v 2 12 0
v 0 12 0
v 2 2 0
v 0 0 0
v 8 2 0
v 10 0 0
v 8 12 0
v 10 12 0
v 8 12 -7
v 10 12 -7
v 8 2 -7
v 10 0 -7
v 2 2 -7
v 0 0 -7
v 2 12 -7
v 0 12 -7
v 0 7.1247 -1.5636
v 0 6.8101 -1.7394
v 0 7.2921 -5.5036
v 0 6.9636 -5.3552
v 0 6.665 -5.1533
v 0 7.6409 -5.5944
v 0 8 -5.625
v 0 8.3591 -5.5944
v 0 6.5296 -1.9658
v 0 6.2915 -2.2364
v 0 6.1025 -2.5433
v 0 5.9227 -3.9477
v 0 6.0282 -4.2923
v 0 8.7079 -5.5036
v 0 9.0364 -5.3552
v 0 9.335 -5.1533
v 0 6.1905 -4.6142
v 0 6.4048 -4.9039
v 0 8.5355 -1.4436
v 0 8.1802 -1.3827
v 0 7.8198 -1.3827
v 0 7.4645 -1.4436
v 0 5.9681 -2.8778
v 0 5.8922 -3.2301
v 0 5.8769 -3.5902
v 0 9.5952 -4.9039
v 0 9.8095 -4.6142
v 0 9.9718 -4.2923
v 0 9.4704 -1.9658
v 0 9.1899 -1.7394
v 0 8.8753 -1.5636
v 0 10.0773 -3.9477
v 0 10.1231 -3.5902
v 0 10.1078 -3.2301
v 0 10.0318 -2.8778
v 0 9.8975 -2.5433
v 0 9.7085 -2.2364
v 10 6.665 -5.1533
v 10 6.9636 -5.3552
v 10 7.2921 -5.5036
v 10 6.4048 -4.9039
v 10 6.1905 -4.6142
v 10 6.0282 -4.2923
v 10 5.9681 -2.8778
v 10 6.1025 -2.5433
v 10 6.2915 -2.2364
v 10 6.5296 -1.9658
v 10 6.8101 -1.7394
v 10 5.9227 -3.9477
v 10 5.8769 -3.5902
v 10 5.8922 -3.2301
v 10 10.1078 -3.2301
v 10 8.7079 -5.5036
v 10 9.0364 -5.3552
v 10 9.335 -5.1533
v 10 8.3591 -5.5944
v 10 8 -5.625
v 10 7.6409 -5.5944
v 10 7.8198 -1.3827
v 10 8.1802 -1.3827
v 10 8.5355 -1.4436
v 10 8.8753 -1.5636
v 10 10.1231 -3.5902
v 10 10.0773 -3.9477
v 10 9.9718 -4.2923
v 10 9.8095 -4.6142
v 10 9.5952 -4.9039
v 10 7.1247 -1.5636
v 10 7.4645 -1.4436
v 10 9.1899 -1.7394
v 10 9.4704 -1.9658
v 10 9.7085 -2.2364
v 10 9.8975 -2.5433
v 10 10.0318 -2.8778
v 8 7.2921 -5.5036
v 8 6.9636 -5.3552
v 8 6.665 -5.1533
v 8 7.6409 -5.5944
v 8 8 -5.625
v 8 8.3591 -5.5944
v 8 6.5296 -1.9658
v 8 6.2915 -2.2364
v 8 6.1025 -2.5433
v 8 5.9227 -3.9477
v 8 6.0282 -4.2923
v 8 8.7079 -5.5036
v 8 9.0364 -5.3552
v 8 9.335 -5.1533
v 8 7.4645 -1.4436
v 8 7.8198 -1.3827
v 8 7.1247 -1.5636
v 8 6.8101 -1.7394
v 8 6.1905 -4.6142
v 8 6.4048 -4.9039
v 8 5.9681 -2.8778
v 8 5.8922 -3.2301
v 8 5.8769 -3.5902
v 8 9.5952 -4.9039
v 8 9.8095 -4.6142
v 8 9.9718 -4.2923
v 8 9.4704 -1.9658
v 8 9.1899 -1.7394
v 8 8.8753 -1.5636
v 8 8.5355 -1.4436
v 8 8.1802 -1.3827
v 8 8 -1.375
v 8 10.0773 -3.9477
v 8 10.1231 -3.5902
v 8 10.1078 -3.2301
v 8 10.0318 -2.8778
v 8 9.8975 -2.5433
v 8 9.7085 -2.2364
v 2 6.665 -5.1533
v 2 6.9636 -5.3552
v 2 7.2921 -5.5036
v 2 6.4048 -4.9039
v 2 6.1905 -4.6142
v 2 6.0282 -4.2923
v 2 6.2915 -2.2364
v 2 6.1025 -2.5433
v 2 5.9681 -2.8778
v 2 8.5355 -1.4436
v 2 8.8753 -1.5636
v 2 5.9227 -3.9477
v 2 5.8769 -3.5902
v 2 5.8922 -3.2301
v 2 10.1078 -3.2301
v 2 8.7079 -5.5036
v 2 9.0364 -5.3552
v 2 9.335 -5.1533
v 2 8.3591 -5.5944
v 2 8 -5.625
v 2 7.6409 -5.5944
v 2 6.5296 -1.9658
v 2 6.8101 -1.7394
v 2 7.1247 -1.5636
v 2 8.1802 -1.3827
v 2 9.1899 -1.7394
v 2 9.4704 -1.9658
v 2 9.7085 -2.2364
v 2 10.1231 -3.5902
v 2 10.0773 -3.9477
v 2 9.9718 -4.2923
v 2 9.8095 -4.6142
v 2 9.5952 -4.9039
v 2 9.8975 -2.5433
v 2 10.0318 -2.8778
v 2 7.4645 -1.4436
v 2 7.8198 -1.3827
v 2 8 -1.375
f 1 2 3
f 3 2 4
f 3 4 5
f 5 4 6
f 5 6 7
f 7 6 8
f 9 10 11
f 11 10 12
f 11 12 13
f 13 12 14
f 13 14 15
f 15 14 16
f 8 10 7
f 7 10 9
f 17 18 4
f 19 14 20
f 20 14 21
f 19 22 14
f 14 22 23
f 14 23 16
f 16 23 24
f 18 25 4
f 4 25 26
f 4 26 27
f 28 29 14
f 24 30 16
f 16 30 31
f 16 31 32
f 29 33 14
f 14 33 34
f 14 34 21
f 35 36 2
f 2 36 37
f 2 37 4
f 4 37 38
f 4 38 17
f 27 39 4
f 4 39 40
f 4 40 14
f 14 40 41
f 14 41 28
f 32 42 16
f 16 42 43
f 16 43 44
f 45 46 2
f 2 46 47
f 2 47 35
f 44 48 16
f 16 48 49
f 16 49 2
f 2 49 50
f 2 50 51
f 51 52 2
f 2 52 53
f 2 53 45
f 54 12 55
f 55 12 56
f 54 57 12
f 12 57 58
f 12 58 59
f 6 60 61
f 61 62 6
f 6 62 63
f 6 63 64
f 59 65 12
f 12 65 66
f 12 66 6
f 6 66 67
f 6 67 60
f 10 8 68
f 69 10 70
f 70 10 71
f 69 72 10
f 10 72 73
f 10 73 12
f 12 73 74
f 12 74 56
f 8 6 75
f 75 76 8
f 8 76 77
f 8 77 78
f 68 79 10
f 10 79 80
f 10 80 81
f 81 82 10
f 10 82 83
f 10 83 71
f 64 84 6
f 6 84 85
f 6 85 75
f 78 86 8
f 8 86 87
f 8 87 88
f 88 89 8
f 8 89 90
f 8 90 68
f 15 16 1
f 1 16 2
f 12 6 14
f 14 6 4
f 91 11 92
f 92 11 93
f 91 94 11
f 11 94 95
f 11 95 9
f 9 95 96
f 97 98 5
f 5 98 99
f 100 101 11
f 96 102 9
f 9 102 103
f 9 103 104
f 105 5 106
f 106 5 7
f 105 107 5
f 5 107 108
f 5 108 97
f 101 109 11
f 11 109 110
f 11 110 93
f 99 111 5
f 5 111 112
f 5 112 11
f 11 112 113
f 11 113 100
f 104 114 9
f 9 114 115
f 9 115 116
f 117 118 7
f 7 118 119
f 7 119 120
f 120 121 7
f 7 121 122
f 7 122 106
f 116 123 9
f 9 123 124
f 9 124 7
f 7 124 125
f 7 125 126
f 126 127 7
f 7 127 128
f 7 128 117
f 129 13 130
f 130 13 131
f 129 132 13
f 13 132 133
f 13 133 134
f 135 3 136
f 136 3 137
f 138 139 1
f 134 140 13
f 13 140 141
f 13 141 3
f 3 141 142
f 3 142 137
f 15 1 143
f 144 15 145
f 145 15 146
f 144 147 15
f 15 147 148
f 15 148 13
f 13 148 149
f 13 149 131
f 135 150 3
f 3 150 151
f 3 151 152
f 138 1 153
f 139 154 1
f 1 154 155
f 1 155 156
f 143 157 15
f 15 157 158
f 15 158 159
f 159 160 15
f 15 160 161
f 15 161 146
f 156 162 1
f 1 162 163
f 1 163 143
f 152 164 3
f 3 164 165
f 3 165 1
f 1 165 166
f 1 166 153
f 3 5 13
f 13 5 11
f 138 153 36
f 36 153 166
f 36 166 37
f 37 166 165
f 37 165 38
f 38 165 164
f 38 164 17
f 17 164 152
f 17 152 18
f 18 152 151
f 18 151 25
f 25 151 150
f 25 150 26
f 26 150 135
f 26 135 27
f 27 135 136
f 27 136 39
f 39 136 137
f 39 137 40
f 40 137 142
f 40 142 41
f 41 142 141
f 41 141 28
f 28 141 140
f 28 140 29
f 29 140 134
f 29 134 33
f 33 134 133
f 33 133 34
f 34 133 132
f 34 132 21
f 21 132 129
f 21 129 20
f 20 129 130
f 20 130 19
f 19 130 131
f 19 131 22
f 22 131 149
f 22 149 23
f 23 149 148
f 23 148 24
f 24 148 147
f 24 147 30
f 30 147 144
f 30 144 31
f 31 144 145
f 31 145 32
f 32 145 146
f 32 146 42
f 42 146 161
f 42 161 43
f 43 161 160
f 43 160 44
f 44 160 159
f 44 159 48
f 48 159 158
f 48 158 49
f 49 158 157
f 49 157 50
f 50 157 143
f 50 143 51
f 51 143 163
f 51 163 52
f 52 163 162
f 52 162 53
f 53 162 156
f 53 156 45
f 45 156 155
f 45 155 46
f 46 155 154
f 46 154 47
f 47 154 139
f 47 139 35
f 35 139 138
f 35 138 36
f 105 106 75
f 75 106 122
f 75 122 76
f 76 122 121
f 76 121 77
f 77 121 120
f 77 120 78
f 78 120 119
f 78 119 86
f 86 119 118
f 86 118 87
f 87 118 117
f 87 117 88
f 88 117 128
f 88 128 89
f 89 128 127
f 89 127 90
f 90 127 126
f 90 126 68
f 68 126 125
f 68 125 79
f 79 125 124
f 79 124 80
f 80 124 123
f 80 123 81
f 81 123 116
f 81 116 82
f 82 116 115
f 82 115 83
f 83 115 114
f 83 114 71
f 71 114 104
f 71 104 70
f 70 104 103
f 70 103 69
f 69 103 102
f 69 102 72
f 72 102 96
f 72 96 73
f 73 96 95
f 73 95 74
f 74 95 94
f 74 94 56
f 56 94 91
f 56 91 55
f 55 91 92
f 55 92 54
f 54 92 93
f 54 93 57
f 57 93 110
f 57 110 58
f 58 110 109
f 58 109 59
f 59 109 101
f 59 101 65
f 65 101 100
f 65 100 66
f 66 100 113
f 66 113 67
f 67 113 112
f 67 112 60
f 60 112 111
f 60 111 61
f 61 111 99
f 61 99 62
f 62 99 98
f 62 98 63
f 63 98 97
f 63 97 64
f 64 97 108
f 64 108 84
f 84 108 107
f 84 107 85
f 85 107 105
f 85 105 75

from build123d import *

# Parameters (mm, degrees)
SKETCH1_W           = 10
SKETCH1_H           = 7
BOSS_EXTRUDE1_DEPTH = 12
SKETCH2_W           = 3
SKETCH2_H           = 7
CUT_EXTRUDE1_DEPTH  = 10
SKETCH3_R           = 2.125
CUT_EXTRUDE2_DEPTH  = 11


with BuildPart() as part:
    # Sketch1 → Boss-Extrude1 (new body)
    with BuildSketch(Plane(origin=(0, 0, 0), x_dir=(1, 0, 0), z_dir=(0, 1, 0))):
        with Locations((5, 3.5)):
            Rectangle(SKETCH1_W, SKETCH1_H)
    extrude(amount=BOSS_EXTRUDE1_DEPTH)

    # Sketch2 → Cut-Extrude1 (cut)
    with BuildSketch(Plane(origin=(0, 12, 0), x_dir=(1, 0, 0), z_dir=(0, 1, 0))):
        with Locations((3.5, 3.5)):
            Rectangle(SKETCH2_W, SKETCH2_H)
        with Locations((6.5, 3.5)):
            Rectangle(SKETCH2_W, SKETCH2_H)
    extrude(amount=-CUT_EXTRUDE1_DEPTH, mode=Mode.SUBTRACT)

    # Sketch3 → Cut-Extrude2 (cut, through all)
    with BuildSketch(Plane(origin=(10, 0, 0), x_dir=(0, 0, -1), z_dir=(1, 0, 0))):
        with Locations((3.5, 8)):
            Circle(SKETCH3_R)
    extrude(amount=-CUT_EXTRUDE2_DEPTH, mode=Mode.SUBTRACT)


solid = part.part
